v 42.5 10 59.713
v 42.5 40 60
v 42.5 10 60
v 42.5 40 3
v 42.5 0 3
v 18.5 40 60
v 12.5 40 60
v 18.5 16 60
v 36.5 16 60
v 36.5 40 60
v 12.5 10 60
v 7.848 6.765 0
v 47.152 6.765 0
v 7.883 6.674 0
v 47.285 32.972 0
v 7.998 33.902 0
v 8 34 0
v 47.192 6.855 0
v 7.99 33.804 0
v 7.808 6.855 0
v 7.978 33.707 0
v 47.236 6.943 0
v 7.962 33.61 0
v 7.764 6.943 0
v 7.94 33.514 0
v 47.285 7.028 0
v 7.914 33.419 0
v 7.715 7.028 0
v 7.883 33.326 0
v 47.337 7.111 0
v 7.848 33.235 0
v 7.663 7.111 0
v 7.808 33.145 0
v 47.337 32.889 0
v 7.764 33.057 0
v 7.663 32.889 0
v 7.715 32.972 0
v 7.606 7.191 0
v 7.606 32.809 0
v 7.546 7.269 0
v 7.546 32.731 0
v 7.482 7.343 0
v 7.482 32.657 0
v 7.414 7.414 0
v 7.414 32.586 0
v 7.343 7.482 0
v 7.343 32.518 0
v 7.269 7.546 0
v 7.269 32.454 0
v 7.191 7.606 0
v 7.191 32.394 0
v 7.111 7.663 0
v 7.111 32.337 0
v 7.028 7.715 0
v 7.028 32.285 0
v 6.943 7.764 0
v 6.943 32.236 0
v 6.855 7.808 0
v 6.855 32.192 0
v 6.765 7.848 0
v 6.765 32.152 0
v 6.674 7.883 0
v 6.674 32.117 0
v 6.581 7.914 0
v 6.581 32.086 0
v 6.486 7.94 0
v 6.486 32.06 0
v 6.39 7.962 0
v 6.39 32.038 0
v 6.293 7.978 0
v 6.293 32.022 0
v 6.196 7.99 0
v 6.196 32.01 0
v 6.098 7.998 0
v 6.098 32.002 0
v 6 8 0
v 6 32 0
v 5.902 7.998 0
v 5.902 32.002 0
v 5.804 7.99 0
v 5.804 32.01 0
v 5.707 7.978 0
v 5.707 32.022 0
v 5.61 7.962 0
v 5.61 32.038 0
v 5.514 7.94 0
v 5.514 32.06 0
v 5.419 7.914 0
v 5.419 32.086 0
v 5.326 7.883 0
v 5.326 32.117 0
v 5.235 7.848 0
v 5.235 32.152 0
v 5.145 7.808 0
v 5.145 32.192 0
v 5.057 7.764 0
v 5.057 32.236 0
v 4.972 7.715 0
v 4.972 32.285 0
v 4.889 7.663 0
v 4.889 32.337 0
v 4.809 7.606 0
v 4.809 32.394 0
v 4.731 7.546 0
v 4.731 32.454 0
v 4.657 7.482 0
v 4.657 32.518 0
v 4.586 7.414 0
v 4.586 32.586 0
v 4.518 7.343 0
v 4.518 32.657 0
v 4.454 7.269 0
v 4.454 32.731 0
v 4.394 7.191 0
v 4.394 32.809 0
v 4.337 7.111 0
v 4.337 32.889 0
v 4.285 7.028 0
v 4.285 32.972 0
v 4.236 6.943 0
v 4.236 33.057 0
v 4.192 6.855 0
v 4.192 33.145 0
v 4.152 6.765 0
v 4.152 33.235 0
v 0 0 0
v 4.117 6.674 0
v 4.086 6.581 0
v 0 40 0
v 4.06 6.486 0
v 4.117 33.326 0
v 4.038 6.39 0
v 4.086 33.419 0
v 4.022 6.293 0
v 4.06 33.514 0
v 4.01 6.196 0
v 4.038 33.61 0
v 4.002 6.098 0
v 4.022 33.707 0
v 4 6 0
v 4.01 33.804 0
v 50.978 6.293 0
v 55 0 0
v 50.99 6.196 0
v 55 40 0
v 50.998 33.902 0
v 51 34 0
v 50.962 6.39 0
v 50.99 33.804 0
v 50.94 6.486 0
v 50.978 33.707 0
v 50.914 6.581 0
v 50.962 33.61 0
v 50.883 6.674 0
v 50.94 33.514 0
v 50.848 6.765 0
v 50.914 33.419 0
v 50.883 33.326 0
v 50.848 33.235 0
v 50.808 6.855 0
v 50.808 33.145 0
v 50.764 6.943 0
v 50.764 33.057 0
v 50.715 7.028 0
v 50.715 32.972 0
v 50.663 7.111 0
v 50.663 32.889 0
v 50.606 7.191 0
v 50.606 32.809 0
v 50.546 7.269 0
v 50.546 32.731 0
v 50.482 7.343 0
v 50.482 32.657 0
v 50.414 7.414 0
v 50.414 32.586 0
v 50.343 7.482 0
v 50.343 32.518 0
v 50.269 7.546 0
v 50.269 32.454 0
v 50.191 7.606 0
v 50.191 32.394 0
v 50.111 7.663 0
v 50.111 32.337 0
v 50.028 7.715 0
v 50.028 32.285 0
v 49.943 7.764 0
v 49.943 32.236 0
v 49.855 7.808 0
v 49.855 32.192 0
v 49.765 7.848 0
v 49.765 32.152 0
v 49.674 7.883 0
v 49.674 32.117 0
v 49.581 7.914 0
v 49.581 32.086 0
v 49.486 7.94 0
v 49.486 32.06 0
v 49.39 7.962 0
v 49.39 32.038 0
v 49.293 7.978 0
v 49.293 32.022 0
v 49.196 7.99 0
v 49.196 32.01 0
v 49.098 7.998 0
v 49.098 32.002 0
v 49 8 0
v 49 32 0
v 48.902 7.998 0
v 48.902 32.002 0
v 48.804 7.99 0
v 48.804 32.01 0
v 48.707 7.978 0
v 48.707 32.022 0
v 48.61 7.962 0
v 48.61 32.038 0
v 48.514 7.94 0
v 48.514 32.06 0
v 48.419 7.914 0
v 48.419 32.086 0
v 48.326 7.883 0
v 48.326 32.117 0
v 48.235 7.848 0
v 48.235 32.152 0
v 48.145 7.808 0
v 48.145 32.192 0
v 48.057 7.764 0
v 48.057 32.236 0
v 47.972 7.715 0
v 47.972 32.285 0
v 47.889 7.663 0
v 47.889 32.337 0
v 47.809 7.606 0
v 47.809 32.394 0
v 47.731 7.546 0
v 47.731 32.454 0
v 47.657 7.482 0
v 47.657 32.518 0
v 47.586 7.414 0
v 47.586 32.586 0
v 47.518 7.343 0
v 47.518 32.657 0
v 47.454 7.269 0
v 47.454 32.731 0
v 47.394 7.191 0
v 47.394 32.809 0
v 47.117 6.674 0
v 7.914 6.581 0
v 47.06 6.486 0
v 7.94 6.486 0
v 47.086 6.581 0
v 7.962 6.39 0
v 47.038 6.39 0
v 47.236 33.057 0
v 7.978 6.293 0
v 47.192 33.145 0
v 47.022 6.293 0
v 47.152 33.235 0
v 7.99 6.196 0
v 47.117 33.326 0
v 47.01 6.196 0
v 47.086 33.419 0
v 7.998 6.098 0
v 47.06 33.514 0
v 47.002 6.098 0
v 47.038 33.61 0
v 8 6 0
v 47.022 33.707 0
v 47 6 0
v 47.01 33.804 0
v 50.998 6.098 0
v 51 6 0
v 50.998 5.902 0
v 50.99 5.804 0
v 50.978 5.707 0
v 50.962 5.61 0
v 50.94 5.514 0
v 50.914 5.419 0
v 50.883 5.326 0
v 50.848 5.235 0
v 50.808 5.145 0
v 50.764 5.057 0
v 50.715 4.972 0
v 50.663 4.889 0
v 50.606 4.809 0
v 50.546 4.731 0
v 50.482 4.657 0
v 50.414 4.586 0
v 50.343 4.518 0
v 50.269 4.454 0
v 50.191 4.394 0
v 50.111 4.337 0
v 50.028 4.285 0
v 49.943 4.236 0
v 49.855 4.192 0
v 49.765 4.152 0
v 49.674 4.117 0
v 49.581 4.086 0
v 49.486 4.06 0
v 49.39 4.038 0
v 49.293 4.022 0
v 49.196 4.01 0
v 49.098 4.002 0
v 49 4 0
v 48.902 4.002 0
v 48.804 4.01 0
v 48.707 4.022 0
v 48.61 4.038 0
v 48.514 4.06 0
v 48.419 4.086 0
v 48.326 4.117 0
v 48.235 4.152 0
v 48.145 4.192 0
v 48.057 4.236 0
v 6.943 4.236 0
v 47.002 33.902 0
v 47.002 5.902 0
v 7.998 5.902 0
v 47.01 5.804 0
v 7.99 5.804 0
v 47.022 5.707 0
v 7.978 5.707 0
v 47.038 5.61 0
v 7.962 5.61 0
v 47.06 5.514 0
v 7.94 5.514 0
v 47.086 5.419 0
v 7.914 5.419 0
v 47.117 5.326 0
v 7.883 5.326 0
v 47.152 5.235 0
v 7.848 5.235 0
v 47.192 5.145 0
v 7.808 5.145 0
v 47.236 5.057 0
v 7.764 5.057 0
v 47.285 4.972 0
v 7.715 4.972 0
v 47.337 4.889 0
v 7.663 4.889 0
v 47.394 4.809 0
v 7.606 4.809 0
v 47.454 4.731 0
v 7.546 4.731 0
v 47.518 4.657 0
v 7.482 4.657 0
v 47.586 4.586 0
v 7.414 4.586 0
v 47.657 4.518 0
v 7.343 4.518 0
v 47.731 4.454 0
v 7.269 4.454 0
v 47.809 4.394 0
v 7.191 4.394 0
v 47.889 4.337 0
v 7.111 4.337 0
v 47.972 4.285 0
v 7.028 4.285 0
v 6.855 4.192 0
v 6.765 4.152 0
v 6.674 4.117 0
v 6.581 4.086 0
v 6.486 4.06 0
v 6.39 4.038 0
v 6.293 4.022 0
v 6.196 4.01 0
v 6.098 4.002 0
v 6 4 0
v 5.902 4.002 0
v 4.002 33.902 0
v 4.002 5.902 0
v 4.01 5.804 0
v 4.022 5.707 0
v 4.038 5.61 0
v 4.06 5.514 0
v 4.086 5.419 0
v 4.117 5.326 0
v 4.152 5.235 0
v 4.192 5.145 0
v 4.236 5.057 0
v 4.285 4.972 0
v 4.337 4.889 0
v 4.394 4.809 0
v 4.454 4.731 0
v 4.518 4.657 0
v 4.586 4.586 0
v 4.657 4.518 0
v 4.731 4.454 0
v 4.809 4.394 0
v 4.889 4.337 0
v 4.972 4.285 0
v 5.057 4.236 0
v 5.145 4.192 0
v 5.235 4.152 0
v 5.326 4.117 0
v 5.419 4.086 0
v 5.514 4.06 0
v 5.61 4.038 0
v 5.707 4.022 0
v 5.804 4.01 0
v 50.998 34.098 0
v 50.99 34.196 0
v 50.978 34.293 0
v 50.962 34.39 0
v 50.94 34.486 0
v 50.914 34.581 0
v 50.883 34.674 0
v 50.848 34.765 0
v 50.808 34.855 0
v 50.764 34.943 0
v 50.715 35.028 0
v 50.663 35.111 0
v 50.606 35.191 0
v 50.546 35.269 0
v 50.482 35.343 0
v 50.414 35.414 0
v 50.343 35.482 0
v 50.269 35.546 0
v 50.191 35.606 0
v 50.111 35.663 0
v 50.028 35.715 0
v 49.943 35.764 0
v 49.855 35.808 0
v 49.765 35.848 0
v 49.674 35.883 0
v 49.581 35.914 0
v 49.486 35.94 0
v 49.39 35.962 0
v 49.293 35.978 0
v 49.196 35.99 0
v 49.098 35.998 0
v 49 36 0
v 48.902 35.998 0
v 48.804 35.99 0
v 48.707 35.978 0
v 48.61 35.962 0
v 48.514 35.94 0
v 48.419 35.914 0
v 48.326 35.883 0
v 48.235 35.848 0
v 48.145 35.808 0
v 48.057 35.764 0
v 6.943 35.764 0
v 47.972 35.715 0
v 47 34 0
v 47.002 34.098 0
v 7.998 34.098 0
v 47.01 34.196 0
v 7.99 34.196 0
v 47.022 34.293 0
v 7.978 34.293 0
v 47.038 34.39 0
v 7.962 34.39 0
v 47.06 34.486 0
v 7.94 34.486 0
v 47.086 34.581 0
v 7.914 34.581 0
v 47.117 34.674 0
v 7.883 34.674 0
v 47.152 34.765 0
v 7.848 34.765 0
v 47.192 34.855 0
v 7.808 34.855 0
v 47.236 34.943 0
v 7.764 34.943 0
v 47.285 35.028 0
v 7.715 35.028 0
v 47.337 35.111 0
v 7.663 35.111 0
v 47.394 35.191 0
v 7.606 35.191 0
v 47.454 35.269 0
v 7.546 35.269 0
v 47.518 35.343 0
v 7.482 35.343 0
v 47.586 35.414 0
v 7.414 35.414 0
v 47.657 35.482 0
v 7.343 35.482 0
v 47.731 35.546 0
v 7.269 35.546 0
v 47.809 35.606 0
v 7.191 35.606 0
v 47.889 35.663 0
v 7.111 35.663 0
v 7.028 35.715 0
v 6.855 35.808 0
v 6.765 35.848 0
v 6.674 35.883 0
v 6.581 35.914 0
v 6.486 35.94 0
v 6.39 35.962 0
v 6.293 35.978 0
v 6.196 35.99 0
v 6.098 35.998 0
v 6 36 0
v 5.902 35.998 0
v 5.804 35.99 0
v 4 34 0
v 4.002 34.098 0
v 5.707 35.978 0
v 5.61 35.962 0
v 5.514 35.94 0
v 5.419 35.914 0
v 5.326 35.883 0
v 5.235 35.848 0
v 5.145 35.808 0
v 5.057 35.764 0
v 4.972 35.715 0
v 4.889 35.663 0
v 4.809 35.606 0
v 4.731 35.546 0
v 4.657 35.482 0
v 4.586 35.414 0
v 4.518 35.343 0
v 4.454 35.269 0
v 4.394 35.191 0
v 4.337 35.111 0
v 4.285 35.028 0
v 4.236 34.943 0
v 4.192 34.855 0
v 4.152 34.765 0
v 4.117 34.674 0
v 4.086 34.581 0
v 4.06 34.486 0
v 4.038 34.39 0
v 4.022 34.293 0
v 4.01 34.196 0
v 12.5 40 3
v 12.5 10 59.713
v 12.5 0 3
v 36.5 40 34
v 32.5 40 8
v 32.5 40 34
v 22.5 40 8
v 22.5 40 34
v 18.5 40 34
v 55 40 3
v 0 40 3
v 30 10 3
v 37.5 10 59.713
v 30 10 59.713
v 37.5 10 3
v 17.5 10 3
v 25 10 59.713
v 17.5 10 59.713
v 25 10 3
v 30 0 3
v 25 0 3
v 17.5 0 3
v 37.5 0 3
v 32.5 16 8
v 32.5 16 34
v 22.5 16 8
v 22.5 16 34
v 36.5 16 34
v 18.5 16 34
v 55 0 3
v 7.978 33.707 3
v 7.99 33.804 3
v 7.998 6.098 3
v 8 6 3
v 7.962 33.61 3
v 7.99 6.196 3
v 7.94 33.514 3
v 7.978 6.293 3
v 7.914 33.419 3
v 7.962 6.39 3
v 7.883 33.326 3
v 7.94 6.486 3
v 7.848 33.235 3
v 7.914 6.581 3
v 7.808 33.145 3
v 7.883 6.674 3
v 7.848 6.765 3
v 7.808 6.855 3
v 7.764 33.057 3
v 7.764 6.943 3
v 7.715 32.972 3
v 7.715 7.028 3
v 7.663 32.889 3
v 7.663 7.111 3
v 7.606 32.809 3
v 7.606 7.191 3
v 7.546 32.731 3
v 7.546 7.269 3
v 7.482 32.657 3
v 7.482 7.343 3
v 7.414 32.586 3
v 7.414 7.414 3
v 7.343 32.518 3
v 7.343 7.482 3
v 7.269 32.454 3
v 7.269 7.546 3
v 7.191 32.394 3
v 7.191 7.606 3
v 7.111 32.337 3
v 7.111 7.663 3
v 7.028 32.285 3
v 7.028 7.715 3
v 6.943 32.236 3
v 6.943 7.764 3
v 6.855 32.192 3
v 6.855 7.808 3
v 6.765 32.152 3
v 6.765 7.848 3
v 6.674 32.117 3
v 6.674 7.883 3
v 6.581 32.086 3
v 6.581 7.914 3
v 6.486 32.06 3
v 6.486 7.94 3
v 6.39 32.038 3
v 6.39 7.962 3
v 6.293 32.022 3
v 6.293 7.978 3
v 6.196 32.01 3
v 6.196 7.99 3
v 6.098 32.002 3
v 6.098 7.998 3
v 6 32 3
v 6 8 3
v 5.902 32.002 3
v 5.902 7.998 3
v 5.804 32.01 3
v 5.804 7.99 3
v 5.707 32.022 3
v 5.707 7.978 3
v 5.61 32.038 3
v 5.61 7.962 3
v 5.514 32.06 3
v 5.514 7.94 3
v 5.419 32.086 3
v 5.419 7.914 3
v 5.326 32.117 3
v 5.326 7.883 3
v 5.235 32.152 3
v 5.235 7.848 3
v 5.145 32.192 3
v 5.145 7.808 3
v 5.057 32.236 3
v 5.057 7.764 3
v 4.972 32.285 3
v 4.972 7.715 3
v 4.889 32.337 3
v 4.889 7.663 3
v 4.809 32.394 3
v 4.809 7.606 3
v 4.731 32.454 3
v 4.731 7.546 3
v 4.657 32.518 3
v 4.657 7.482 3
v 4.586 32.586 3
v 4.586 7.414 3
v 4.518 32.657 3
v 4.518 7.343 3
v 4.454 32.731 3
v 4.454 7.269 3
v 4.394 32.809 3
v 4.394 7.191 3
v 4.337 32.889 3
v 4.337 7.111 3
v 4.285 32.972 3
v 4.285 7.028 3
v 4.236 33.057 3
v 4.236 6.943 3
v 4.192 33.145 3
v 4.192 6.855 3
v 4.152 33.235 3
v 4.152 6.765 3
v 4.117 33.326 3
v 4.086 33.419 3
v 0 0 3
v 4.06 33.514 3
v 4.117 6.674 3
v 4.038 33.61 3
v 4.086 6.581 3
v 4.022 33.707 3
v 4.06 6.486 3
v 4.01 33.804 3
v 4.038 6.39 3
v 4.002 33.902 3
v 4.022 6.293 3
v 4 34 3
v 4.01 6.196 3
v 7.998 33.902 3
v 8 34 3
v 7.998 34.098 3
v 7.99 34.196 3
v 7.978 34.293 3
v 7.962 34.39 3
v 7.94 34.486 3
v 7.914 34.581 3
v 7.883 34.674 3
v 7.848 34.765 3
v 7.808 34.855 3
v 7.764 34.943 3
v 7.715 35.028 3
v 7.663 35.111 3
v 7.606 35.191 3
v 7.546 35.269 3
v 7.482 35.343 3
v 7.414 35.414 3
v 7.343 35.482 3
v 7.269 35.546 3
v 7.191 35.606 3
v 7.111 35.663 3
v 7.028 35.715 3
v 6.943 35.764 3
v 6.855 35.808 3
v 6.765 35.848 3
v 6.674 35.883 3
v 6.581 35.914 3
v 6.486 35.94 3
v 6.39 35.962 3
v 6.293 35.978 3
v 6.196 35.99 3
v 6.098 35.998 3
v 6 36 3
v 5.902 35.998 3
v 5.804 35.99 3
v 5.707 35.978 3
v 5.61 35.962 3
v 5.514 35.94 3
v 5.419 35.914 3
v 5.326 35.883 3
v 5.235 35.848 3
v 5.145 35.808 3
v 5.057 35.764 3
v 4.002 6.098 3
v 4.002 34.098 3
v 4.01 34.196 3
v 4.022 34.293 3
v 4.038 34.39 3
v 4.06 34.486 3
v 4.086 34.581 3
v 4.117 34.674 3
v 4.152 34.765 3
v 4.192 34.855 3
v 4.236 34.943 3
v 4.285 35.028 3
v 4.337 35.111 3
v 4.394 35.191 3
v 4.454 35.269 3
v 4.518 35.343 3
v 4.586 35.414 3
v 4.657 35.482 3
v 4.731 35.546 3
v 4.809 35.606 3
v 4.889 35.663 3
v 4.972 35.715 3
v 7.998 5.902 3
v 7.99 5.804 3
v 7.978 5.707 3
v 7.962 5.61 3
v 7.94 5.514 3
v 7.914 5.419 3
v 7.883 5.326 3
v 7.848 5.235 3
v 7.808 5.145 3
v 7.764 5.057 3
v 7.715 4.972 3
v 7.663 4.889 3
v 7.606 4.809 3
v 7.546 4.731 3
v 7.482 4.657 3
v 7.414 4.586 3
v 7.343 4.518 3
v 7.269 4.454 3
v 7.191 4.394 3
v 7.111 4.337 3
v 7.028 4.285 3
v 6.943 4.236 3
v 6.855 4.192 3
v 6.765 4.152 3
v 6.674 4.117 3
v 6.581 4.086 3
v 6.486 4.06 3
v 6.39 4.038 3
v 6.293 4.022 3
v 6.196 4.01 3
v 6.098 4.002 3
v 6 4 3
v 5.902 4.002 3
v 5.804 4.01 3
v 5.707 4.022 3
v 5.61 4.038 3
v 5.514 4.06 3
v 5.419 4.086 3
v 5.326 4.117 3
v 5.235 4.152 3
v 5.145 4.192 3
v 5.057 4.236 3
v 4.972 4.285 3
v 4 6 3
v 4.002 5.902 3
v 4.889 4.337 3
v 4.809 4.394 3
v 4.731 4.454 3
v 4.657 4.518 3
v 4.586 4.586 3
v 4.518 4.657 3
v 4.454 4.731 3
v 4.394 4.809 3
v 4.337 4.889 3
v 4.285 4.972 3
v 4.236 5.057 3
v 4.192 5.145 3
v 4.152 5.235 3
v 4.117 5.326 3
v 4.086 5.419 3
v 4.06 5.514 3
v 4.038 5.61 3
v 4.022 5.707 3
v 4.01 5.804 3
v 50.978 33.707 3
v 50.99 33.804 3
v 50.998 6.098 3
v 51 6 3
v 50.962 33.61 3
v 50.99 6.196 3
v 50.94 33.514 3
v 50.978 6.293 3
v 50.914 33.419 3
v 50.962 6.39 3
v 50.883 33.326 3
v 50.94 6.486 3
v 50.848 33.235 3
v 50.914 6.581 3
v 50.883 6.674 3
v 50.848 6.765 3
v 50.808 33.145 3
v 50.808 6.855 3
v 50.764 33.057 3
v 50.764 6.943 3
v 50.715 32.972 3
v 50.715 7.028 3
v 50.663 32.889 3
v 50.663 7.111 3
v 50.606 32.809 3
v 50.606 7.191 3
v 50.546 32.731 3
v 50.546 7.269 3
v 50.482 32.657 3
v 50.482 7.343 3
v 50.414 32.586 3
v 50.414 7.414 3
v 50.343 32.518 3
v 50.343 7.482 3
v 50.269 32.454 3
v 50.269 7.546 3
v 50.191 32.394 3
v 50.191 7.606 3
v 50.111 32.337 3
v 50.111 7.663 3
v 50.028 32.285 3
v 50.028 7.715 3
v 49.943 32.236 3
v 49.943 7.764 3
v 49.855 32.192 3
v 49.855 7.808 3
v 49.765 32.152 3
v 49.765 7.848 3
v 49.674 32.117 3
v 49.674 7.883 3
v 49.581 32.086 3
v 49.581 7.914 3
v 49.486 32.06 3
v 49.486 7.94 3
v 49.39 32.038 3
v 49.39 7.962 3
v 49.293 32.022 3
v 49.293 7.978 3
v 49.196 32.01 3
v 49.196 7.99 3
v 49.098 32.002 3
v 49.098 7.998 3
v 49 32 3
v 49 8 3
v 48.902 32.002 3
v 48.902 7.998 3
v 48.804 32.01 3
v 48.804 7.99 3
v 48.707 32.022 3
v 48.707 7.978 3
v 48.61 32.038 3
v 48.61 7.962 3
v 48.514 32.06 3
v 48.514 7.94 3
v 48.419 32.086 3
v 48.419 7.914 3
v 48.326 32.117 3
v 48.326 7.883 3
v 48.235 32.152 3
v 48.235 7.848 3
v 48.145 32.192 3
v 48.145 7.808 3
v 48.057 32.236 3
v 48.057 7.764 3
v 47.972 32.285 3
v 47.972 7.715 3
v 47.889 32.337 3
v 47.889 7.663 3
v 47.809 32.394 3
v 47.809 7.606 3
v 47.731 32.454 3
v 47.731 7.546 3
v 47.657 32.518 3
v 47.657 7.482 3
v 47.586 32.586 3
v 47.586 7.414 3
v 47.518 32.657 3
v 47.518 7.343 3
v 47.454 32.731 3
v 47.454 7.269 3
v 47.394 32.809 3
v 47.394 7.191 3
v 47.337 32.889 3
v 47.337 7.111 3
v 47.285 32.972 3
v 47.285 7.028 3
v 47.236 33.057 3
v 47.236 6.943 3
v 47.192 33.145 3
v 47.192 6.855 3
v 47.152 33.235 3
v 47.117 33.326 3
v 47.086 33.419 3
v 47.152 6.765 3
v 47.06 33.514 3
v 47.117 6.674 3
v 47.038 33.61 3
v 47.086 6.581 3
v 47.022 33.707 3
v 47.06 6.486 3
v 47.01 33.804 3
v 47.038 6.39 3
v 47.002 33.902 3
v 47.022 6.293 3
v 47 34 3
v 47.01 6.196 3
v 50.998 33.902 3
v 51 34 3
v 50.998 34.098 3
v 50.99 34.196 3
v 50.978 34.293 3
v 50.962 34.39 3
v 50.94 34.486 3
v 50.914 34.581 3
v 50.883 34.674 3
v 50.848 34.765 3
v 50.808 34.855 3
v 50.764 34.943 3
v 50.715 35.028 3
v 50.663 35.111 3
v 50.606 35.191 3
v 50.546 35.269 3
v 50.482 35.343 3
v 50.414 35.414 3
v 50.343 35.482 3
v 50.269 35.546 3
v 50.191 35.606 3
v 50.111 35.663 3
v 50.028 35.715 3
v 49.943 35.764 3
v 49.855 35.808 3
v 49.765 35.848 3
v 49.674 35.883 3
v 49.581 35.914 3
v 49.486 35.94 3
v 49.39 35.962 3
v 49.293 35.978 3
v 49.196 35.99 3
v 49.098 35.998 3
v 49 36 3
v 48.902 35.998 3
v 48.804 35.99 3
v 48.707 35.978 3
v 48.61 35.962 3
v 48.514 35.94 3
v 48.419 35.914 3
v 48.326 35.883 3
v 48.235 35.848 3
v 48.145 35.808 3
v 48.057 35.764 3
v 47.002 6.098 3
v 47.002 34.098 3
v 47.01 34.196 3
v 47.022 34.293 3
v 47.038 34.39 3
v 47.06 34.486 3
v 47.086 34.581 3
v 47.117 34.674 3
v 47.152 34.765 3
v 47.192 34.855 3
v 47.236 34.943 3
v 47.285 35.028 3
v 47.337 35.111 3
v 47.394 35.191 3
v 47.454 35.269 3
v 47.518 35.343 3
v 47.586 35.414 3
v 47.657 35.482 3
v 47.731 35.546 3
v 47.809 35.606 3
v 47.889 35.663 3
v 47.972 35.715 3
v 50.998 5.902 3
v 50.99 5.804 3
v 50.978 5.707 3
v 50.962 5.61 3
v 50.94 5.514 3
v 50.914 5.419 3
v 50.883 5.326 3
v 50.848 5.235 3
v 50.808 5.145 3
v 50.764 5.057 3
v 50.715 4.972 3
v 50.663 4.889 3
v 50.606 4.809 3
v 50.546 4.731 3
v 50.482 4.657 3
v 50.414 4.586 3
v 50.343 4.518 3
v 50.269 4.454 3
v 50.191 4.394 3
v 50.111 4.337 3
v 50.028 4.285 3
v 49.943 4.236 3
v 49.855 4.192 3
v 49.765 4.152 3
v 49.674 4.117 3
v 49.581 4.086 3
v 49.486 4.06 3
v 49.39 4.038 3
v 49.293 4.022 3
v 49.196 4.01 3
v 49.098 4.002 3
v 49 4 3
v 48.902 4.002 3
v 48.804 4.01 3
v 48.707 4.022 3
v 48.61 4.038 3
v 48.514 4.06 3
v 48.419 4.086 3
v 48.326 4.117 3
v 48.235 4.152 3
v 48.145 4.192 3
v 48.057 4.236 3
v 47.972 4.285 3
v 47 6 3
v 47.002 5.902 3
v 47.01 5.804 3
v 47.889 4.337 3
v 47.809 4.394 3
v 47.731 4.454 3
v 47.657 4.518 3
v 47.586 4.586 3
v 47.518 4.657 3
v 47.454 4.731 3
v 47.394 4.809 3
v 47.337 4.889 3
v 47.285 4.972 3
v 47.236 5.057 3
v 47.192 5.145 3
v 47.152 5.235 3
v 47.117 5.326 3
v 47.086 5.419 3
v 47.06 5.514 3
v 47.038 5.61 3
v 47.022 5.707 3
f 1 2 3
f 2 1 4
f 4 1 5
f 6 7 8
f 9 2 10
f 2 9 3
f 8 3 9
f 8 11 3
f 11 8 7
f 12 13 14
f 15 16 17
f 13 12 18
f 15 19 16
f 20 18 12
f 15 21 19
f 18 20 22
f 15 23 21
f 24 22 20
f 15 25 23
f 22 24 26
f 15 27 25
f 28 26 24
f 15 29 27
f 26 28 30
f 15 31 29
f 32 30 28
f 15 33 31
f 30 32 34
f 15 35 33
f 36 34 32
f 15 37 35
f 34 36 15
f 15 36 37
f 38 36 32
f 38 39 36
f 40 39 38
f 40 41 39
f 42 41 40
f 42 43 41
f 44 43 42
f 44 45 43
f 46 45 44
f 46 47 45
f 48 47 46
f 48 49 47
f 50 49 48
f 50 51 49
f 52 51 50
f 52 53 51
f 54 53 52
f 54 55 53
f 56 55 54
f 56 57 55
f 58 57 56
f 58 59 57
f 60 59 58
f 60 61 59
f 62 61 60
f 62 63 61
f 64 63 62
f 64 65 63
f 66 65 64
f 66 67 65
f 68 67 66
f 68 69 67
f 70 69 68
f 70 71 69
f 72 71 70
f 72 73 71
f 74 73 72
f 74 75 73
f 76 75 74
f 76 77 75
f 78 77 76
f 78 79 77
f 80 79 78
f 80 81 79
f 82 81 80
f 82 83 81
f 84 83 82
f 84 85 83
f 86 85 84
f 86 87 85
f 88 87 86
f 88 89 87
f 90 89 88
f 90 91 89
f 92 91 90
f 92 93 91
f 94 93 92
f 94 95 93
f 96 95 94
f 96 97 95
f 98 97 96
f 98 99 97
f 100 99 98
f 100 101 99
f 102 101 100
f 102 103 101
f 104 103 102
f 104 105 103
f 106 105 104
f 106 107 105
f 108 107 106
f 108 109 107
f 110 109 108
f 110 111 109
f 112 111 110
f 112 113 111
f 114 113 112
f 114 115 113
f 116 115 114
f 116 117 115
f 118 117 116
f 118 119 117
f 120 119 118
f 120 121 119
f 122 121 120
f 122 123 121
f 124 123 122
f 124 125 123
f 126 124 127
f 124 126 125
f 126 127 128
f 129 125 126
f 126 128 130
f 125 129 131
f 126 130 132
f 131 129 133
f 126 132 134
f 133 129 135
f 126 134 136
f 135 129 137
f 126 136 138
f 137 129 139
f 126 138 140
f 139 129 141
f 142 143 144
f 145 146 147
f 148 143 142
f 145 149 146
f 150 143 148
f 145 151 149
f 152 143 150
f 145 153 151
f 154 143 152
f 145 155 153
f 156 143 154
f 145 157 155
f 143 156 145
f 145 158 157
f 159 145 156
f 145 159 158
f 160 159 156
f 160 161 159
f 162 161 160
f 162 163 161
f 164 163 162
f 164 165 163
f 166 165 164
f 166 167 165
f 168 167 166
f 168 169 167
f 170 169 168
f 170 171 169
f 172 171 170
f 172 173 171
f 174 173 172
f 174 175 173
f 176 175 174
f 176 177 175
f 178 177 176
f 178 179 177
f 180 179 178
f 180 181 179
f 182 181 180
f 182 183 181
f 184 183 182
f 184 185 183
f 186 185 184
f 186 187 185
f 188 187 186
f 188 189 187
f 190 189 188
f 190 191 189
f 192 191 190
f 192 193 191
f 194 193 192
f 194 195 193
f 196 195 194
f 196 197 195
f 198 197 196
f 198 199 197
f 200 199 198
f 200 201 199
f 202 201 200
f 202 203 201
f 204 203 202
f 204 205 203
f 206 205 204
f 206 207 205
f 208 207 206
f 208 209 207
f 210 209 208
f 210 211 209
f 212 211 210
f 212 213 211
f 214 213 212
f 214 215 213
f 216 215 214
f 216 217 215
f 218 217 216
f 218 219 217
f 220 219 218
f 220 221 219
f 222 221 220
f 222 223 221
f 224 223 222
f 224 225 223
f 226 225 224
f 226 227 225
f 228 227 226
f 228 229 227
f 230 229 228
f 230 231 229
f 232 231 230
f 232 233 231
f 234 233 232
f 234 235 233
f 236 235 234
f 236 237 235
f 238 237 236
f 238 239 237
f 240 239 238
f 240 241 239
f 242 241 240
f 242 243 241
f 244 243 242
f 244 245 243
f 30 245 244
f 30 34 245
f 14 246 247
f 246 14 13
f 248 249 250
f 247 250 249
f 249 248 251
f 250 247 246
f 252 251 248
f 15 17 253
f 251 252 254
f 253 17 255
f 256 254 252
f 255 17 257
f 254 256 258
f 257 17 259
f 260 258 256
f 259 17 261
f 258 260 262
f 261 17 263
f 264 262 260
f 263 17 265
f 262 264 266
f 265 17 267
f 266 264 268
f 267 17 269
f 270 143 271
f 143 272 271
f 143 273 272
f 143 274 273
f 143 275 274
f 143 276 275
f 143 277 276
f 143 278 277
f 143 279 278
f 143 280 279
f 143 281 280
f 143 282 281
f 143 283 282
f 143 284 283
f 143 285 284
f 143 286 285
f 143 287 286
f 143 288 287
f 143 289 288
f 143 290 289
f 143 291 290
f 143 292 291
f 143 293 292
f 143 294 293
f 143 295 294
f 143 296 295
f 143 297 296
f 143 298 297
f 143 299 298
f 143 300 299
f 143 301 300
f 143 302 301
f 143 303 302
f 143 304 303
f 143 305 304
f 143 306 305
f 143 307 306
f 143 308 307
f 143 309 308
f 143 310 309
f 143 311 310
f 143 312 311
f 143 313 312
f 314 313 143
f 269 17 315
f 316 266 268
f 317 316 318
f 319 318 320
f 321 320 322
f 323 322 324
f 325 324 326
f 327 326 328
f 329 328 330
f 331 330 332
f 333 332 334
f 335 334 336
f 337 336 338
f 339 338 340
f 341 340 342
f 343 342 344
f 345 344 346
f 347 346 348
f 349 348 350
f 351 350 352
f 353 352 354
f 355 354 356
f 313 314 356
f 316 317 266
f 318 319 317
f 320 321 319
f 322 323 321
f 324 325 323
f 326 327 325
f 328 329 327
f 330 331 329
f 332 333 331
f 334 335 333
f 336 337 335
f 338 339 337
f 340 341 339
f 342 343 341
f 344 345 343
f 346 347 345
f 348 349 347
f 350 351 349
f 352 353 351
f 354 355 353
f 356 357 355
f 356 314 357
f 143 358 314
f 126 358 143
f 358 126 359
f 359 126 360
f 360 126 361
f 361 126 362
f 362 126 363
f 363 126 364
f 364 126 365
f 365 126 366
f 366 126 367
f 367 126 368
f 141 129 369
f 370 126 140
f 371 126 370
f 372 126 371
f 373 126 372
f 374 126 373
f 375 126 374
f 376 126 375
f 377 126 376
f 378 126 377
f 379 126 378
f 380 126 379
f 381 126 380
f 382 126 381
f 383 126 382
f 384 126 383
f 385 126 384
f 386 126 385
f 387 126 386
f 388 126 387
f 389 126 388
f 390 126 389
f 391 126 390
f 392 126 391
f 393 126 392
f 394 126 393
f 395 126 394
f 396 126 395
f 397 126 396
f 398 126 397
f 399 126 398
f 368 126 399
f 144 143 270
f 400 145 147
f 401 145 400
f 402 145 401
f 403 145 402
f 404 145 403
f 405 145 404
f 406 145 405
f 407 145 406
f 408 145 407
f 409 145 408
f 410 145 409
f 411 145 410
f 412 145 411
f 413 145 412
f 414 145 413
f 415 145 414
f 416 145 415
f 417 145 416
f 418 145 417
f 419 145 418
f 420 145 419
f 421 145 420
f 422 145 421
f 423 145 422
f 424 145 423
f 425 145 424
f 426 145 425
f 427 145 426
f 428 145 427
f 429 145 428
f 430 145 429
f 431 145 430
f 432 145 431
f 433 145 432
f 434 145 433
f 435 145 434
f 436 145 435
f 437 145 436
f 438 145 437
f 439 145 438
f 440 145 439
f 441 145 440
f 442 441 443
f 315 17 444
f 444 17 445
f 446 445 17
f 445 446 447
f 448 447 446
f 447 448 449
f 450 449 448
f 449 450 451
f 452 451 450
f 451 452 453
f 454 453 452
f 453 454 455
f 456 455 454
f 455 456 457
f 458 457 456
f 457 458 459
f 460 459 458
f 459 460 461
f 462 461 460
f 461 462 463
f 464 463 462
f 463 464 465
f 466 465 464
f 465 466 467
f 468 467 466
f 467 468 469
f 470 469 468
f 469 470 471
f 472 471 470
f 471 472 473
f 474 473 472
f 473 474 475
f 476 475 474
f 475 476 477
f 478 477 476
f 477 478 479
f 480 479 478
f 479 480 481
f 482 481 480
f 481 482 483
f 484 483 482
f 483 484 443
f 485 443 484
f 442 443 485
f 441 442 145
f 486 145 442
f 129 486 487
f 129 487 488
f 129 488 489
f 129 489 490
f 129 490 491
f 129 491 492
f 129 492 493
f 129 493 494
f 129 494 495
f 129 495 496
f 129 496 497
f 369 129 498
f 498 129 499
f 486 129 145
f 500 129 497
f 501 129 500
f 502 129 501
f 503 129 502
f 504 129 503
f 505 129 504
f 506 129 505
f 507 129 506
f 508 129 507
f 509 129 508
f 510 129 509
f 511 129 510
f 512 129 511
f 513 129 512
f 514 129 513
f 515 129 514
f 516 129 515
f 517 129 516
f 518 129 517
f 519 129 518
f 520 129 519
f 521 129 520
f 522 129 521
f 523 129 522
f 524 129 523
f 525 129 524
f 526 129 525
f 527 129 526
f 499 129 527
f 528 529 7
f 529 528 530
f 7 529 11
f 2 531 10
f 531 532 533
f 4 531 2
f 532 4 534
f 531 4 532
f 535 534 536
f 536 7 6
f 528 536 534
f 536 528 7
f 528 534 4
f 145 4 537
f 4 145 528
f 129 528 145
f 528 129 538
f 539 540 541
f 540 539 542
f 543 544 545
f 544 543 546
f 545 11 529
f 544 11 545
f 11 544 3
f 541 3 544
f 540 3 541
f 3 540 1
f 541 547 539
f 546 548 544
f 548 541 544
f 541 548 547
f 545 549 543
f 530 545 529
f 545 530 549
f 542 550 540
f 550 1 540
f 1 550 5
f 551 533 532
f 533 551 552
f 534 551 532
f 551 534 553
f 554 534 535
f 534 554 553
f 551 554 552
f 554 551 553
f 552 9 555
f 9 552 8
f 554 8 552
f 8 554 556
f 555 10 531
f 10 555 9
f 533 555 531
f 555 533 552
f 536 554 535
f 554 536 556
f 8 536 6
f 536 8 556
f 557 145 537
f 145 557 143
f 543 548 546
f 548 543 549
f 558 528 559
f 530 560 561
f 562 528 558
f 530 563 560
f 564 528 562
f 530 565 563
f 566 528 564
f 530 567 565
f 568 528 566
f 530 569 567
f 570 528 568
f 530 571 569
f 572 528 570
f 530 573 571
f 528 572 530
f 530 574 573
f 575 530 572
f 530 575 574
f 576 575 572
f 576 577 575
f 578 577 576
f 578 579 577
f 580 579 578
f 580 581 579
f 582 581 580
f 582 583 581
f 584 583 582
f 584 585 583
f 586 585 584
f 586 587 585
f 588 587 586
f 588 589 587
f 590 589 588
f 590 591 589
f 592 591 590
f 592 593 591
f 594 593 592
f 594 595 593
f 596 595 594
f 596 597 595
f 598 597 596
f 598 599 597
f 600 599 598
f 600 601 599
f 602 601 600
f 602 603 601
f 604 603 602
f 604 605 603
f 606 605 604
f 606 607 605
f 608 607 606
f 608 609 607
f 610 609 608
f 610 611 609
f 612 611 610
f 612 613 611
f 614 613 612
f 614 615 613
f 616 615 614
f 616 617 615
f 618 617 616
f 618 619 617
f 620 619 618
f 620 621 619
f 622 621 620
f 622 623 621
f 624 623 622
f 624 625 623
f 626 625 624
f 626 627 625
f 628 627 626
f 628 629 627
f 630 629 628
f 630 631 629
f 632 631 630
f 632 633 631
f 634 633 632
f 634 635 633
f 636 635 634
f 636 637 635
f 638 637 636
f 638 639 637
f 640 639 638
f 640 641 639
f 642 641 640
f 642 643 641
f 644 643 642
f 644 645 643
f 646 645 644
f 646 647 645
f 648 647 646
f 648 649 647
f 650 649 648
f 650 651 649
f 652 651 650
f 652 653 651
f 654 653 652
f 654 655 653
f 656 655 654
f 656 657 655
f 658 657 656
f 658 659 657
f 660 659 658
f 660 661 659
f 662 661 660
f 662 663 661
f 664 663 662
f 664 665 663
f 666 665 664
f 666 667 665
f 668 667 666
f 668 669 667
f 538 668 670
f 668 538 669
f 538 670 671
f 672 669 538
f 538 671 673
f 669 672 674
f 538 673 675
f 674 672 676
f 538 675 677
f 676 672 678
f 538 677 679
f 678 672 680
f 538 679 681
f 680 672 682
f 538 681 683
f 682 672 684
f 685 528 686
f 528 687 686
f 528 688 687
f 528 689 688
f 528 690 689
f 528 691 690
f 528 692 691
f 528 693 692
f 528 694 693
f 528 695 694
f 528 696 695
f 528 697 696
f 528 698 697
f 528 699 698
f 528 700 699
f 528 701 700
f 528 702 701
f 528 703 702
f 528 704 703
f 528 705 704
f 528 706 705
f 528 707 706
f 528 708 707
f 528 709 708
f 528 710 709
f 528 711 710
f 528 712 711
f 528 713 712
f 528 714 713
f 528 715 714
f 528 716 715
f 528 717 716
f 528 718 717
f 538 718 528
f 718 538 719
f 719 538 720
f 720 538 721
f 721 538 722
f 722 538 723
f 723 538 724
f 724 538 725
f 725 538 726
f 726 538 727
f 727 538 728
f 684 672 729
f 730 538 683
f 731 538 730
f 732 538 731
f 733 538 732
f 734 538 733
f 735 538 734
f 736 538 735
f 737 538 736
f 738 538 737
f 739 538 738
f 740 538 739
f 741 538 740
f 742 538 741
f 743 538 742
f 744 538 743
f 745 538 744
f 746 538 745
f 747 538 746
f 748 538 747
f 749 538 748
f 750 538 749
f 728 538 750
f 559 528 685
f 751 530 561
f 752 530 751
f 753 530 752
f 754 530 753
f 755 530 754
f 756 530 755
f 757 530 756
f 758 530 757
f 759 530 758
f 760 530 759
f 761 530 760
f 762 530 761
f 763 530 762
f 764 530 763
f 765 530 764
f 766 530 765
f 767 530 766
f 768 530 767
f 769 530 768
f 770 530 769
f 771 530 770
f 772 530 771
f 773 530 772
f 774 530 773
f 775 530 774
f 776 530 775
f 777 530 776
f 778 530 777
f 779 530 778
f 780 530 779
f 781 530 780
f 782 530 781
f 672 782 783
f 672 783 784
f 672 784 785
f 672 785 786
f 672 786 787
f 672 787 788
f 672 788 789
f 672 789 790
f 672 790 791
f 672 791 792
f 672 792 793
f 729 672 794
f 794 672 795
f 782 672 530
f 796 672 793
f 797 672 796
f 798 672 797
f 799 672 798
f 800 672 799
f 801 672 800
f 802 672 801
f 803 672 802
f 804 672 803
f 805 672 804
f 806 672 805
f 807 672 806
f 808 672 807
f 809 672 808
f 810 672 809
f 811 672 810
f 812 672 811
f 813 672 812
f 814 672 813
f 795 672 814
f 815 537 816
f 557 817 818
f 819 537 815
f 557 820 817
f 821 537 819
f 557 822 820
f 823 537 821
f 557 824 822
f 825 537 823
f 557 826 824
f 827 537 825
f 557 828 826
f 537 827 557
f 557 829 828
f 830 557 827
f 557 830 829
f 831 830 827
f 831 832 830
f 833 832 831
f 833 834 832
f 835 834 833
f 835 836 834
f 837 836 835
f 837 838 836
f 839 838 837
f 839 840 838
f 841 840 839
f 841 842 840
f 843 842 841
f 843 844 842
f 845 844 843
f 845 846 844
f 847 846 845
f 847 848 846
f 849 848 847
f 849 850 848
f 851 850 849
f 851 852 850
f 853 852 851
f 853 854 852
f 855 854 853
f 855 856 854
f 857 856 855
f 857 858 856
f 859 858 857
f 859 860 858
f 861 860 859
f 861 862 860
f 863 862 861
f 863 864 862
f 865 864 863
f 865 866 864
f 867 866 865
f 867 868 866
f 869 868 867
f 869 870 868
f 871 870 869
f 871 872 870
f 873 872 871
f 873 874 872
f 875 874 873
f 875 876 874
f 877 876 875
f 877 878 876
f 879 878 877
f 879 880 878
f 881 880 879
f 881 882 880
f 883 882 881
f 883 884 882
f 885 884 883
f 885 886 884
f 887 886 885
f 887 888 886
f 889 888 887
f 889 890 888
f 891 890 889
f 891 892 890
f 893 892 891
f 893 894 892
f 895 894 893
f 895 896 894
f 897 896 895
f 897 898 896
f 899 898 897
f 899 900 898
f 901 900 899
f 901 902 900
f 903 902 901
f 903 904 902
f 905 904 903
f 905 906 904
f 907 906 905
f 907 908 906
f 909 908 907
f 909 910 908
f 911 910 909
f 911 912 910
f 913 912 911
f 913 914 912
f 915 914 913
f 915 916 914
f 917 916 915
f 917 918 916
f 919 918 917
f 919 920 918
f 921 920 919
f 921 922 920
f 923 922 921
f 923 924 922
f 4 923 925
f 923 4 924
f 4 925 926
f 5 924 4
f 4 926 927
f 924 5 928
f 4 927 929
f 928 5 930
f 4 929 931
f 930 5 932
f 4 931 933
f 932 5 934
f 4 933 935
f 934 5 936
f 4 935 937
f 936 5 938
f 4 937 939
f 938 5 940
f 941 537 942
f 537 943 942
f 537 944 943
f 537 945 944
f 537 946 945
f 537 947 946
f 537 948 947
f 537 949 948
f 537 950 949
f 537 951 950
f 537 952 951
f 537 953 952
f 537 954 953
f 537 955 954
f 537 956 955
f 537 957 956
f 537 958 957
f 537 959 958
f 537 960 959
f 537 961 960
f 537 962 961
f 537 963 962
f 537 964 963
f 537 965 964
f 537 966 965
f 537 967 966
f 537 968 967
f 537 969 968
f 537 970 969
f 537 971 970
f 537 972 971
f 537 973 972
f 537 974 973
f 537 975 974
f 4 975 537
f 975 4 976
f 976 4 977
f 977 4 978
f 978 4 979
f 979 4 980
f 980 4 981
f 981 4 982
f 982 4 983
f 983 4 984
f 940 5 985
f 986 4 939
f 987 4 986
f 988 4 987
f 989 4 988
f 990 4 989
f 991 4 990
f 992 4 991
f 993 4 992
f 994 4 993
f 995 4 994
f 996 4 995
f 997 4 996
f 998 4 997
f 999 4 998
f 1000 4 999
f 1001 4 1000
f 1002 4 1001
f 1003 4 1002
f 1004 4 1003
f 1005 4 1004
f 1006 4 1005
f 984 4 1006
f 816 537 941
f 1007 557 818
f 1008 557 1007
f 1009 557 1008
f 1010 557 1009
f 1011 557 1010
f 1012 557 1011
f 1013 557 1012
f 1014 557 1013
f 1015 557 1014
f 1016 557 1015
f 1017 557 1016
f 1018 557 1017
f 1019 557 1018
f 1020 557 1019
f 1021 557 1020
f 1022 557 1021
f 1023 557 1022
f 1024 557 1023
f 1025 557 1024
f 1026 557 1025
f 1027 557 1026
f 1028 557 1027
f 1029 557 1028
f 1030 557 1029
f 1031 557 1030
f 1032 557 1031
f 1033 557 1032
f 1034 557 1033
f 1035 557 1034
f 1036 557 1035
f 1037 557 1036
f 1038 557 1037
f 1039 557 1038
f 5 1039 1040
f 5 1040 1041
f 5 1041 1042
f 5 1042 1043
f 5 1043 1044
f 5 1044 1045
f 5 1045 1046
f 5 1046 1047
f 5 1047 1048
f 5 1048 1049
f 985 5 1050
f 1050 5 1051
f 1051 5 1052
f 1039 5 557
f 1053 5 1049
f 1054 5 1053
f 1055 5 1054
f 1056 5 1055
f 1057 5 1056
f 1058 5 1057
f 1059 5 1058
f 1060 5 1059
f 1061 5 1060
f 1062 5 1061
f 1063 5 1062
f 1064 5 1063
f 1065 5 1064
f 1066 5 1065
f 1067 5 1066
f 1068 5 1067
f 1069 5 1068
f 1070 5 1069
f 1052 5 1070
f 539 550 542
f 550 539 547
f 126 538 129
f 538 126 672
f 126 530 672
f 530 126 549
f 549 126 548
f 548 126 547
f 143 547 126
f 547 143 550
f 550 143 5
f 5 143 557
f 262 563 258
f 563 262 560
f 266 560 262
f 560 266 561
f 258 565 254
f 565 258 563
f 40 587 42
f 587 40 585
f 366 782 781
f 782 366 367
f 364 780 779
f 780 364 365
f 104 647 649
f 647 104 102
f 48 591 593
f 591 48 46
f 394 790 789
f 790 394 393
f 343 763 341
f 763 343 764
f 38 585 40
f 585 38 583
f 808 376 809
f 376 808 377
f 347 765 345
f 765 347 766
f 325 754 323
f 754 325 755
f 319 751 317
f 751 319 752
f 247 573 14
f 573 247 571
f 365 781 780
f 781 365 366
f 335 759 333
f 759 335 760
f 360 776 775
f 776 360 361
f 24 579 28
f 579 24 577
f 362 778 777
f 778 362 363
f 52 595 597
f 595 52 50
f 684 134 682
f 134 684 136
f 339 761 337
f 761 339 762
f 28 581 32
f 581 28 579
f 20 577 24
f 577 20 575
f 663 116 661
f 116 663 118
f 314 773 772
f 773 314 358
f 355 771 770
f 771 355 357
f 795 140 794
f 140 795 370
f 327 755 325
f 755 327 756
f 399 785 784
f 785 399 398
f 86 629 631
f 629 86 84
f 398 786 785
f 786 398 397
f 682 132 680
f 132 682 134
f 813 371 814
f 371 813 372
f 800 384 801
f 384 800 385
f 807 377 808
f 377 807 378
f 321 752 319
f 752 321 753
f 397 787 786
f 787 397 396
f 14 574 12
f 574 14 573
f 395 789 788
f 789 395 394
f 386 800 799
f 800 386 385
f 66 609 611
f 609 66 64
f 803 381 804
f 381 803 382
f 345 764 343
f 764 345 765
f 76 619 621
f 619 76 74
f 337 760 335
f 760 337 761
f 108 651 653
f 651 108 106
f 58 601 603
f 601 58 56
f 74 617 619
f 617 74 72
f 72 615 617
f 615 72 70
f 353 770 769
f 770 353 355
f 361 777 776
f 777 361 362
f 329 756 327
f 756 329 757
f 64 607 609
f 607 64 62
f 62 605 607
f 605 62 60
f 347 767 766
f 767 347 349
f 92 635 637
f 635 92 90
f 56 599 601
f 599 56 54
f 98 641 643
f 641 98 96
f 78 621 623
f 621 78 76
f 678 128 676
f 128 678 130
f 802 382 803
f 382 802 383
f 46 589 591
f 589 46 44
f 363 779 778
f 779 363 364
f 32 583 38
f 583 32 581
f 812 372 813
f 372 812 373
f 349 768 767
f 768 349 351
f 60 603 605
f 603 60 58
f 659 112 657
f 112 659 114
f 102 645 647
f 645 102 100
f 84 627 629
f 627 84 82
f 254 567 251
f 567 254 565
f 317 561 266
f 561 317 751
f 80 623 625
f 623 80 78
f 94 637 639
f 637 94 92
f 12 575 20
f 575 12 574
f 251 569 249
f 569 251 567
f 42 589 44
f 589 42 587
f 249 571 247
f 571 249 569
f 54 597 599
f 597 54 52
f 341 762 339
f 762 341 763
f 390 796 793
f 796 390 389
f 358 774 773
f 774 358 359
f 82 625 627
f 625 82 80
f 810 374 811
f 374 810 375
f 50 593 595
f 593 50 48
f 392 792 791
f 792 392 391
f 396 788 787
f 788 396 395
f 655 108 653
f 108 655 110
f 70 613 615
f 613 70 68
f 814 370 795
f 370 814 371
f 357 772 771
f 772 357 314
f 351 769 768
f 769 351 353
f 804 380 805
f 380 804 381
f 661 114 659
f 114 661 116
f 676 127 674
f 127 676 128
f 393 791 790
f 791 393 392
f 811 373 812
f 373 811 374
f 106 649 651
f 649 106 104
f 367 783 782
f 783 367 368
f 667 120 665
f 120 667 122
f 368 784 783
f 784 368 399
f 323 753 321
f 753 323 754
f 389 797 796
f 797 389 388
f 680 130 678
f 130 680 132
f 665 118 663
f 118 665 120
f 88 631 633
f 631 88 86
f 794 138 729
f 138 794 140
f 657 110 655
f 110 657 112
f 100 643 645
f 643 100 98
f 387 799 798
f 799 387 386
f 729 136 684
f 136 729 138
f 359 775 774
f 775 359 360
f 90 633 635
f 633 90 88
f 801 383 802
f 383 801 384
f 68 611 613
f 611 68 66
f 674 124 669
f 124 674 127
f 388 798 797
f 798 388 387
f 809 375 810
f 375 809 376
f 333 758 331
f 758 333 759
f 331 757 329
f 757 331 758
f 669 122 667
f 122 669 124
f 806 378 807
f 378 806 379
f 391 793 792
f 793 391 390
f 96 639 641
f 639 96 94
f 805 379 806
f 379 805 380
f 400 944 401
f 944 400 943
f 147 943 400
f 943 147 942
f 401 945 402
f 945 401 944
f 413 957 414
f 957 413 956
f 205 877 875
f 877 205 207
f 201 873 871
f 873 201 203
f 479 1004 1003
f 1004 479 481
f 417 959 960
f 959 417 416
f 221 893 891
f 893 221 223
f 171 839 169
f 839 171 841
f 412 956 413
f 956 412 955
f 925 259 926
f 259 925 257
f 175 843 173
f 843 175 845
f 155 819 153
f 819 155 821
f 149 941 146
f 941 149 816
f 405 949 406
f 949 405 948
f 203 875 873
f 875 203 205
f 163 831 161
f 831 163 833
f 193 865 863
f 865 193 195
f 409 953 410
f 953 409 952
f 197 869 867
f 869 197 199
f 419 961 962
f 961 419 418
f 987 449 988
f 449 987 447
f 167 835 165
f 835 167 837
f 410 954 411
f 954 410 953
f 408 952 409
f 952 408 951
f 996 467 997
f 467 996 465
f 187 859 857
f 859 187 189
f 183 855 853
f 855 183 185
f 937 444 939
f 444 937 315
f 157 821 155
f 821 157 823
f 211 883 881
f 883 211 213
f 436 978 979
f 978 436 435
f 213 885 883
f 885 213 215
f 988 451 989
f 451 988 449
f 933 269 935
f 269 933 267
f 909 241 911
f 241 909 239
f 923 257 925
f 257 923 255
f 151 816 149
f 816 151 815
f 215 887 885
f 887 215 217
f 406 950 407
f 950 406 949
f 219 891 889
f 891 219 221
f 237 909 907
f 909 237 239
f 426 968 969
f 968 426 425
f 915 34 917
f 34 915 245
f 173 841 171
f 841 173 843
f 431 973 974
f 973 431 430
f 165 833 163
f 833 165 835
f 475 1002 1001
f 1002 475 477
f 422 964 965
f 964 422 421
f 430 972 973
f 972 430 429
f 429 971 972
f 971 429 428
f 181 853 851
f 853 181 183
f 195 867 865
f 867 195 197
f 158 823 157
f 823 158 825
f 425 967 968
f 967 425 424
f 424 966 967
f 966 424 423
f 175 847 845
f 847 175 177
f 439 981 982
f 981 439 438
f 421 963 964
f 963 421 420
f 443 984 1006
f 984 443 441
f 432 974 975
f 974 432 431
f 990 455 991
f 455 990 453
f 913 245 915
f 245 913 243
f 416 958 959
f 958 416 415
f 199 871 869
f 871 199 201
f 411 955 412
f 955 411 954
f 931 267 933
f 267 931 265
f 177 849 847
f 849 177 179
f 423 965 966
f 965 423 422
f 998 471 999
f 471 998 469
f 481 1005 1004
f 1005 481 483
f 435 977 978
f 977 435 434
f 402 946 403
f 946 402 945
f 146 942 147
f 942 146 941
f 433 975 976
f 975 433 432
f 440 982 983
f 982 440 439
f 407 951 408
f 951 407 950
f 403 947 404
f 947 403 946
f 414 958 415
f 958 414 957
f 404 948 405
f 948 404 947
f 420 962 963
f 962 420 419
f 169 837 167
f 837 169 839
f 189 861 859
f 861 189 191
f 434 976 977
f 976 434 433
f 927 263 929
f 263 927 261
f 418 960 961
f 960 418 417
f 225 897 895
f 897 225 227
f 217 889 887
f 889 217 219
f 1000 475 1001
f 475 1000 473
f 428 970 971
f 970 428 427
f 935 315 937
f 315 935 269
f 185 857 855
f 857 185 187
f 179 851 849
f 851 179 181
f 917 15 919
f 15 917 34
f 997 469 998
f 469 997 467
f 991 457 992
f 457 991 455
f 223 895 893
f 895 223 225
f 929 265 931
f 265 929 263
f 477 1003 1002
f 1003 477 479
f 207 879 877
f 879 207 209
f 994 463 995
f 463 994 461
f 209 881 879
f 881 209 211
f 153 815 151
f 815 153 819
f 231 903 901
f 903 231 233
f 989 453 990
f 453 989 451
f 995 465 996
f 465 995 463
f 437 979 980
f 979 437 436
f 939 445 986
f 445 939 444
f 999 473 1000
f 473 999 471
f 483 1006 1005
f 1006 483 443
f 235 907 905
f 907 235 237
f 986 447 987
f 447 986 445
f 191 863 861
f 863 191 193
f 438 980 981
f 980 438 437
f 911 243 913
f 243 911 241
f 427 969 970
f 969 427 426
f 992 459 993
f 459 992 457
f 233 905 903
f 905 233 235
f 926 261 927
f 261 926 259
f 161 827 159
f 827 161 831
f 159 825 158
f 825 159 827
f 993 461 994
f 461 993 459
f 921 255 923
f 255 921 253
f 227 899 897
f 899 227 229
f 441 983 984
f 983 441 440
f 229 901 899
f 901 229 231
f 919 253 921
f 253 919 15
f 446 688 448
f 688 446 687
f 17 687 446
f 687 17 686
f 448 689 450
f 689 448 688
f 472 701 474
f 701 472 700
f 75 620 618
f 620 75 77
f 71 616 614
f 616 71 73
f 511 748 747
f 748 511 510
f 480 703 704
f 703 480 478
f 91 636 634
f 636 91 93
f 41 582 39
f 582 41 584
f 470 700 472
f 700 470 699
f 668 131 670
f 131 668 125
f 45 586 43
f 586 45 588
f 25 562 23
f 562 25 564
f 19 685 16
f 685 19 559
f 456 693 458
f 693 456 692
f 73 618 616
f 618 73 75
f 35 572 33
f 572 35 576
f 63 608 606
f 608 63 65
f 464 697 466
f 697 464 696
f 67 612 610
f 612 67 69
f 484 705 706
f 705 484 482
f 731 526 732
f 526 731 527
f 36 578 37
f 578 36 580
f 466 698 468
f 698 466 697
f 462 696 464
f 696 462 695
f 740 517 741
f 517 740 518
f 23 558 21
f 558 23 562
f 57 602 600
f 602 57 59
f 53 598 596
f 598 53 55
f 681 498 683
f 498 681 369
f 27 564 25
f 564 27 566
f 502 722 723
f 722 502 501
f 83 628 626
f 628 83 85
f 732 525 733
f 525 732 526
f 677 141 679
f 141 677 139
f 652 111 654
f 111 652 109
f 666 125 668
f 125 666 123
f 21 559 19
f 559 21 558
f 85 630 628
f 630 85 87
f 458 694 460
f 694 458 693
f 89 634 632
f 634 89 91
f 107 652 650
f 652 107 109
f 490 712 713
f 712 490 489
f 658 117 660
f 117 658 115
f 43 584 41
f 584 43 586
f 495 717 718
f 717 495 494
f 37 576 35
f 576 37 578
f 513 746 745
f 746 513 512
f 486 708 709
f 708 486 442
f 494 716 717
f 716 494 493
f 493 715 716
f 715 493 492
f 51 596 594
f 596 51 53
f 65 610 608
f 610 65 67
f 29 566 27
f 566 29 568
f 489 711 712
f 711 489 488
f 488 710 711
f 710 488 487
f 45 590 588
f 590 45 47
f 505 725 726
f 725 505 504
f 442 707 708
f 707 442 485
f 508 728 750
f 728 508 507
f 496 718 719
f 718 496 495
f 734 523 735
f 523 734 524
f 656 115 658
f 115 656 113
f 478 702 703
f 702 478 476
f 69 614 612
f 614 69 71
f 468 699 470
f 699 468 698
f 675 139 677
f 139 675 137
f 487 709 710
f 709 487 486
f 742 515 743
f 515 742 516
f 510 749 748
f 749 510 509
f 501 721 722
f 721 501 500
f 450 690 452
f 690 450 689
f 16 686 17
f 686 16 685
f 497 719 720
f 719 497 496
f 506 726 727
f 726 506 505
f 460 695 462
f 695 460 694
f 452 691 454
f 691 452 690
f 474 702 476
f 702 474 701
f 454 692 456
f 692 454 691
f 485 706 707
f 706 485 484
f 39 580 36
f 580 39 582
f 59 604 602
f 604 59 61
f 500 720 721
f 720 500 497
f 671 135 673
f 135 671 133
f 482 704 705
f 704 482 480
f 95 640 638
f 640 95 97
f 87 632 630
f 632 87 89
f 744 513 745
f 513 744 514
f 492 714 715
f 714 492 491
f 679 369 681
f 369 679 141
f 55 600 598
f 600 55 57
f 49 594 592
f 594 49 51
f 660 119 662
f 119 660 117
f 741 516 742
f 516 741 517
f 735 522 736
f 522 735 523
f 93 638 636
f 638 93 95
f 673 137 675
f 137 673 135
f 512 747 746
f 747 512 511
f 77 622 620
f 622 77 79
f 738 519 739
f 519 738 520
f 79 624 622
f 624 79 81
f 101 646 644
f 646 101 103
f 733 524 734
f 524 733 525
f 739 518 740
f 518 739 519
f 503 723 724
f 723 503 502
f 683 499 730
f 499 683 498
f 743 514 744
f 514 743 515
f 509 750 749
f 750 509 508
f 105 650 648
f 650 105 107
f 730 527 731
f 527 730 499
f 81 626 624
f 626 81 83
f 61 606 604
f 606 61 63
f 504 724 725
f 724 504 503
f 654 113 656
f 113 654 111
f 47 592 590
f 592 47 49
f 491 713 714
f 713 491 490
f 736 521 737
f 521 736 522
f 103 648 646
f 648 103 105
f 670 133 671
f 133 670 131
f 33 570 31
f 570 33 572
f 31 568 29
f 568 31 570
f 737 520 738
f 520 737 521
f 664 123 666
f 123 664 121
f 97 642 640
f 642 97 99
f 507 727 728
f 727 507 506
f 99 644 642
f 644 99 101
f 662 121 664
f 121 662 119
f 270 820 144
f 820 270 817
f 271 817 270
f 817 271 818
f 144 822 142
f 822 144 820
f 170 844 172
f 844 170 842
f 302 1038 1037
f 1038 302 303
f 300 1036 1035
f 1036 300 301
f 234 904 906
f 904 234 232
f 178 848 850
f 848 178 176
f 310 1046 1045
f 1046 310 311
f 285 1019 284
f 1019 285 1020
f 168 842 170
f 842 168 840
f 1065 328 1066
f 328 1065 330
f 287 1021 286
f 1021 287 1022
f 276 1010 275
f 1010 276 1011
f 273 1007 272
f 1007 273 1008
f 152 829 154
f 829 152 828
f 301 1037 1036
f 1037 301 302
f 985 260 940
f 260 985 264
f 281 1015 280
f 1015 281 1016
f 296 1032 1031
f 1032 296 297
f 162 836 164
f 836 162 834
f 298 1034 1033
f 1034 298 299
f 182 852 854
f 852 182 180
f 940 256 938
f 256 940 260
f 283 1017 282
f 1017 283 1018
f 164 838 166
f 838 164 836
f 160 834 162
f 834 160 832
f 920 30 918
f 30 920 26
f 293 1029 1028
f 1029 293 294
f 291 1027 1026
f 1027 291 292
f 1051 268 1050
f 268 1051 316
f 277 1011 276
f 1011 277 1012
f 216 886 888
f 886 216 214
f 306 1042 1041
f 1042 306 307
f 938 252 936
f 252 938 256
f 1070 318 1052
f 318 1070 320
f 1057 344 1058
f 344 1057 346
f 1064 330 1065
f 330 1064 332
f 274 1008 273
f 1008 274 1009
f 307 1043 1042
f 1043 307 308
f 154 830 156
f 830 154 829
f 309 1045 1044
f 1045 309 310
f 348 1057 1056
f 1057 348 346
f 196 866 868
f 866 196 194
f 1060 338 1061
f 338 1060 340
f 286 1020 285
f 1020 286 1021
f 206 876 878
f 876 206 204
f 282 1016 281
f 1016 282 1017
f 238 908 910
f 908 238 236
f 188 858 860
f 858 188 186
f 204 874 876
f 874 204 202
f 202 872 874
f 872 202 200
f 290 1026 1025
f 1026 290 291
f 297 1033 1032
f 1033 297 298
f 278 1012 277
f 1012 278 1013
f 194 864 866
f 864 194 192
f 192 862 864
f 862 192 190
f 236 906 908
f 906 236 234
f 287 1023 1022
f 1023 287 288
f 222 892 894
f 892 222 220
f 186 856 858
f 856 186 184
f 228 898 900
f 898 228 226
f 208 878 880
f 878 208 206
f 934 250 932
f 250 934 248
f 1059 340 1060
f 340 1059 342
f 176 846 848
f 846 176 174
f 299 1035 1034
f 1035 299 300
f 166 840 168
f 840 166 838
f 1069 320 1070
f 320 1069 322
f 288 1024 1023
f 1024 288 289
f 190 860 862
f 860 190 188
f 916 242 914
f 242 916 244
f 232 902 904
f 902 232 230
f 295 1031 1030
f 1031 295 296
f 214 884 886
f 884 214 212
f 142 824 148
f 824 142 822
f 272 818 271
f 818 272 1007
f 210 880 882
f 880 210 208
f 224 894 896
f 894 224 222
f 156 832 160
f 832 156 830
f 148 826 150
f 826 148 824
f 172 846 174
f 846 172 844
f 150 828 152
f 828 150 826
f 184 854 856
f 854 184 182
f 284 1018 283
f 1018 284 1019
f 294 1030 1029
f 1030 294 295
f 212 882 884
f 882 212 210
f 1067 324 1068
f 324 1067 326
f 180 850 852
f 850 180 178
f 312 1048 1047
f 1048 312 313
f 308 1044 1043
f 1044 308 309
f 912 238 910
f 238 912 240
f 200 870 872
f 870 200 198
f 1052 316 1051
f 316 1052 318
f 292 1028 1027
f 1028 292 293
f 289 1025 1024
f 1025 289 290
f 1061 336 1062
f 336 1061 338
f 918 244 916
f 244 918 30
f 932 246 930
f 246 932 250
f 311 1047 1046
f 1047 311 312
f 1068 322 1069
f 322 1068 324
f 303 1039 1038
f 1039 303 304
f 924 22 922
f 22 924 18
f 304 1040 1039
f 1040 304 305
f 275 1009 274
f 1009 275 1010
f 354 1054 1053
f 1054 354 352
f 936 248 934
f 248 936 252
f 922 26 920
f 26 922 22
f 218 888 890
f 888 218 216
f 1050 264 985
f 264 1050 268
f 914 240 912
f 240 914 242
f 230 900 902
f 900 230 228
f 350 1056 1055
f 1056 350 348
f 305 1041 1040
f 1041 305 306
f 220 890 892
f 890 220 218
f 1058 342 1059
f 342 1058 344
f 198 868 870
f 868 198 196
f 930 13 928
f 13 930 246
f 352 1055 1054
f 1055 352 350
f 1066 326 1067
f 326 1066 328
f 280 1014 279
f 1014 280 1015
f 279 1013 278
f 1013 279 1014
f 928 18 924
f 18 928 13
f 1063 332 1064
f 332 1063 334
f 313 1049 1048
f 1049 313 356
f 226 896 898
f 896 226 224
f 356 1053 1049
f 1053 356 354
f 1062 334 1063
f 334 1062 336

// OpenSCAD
$fn = 128;

width=55;
length=40;
padding=6;

difference() {
cube([width,length,3]);

   translate([padding,padding,-1]) cylinder(10, d = 4);
   translate([width - padding,length - padding,-1]) cylinder(10, d = 4);
   translate([padding,length-padding,-1]) cylinder(10, d = 4);
   translate([width - padding,padding,-1]) cylinder(10, d = 4);
}


difference() {
  union() {
translate([width/2 - 30/2,10,0]) cube([30,30,60]);
translate([width/2 - 5/2,0,3]) rotate([-20/2,0,0]) cube([5,10,58]);
translate([width/2 - 30/2,0,3]) rotate([-20/2,0,0]) cube([5,10,58]);
translate([width-30/2-5/2,0,3]) rotate([-20/2,0,0]) cube([5,10,58]);
  }

union() {
translate([width/2 - 10/2,length-24,8]) cube([10,30,61]);
translate([width/2 - 18/2,length-24,4+30]) cube([18,30,61]);
  translate([0,0,60]) cube([100,100,5]);
}
}
